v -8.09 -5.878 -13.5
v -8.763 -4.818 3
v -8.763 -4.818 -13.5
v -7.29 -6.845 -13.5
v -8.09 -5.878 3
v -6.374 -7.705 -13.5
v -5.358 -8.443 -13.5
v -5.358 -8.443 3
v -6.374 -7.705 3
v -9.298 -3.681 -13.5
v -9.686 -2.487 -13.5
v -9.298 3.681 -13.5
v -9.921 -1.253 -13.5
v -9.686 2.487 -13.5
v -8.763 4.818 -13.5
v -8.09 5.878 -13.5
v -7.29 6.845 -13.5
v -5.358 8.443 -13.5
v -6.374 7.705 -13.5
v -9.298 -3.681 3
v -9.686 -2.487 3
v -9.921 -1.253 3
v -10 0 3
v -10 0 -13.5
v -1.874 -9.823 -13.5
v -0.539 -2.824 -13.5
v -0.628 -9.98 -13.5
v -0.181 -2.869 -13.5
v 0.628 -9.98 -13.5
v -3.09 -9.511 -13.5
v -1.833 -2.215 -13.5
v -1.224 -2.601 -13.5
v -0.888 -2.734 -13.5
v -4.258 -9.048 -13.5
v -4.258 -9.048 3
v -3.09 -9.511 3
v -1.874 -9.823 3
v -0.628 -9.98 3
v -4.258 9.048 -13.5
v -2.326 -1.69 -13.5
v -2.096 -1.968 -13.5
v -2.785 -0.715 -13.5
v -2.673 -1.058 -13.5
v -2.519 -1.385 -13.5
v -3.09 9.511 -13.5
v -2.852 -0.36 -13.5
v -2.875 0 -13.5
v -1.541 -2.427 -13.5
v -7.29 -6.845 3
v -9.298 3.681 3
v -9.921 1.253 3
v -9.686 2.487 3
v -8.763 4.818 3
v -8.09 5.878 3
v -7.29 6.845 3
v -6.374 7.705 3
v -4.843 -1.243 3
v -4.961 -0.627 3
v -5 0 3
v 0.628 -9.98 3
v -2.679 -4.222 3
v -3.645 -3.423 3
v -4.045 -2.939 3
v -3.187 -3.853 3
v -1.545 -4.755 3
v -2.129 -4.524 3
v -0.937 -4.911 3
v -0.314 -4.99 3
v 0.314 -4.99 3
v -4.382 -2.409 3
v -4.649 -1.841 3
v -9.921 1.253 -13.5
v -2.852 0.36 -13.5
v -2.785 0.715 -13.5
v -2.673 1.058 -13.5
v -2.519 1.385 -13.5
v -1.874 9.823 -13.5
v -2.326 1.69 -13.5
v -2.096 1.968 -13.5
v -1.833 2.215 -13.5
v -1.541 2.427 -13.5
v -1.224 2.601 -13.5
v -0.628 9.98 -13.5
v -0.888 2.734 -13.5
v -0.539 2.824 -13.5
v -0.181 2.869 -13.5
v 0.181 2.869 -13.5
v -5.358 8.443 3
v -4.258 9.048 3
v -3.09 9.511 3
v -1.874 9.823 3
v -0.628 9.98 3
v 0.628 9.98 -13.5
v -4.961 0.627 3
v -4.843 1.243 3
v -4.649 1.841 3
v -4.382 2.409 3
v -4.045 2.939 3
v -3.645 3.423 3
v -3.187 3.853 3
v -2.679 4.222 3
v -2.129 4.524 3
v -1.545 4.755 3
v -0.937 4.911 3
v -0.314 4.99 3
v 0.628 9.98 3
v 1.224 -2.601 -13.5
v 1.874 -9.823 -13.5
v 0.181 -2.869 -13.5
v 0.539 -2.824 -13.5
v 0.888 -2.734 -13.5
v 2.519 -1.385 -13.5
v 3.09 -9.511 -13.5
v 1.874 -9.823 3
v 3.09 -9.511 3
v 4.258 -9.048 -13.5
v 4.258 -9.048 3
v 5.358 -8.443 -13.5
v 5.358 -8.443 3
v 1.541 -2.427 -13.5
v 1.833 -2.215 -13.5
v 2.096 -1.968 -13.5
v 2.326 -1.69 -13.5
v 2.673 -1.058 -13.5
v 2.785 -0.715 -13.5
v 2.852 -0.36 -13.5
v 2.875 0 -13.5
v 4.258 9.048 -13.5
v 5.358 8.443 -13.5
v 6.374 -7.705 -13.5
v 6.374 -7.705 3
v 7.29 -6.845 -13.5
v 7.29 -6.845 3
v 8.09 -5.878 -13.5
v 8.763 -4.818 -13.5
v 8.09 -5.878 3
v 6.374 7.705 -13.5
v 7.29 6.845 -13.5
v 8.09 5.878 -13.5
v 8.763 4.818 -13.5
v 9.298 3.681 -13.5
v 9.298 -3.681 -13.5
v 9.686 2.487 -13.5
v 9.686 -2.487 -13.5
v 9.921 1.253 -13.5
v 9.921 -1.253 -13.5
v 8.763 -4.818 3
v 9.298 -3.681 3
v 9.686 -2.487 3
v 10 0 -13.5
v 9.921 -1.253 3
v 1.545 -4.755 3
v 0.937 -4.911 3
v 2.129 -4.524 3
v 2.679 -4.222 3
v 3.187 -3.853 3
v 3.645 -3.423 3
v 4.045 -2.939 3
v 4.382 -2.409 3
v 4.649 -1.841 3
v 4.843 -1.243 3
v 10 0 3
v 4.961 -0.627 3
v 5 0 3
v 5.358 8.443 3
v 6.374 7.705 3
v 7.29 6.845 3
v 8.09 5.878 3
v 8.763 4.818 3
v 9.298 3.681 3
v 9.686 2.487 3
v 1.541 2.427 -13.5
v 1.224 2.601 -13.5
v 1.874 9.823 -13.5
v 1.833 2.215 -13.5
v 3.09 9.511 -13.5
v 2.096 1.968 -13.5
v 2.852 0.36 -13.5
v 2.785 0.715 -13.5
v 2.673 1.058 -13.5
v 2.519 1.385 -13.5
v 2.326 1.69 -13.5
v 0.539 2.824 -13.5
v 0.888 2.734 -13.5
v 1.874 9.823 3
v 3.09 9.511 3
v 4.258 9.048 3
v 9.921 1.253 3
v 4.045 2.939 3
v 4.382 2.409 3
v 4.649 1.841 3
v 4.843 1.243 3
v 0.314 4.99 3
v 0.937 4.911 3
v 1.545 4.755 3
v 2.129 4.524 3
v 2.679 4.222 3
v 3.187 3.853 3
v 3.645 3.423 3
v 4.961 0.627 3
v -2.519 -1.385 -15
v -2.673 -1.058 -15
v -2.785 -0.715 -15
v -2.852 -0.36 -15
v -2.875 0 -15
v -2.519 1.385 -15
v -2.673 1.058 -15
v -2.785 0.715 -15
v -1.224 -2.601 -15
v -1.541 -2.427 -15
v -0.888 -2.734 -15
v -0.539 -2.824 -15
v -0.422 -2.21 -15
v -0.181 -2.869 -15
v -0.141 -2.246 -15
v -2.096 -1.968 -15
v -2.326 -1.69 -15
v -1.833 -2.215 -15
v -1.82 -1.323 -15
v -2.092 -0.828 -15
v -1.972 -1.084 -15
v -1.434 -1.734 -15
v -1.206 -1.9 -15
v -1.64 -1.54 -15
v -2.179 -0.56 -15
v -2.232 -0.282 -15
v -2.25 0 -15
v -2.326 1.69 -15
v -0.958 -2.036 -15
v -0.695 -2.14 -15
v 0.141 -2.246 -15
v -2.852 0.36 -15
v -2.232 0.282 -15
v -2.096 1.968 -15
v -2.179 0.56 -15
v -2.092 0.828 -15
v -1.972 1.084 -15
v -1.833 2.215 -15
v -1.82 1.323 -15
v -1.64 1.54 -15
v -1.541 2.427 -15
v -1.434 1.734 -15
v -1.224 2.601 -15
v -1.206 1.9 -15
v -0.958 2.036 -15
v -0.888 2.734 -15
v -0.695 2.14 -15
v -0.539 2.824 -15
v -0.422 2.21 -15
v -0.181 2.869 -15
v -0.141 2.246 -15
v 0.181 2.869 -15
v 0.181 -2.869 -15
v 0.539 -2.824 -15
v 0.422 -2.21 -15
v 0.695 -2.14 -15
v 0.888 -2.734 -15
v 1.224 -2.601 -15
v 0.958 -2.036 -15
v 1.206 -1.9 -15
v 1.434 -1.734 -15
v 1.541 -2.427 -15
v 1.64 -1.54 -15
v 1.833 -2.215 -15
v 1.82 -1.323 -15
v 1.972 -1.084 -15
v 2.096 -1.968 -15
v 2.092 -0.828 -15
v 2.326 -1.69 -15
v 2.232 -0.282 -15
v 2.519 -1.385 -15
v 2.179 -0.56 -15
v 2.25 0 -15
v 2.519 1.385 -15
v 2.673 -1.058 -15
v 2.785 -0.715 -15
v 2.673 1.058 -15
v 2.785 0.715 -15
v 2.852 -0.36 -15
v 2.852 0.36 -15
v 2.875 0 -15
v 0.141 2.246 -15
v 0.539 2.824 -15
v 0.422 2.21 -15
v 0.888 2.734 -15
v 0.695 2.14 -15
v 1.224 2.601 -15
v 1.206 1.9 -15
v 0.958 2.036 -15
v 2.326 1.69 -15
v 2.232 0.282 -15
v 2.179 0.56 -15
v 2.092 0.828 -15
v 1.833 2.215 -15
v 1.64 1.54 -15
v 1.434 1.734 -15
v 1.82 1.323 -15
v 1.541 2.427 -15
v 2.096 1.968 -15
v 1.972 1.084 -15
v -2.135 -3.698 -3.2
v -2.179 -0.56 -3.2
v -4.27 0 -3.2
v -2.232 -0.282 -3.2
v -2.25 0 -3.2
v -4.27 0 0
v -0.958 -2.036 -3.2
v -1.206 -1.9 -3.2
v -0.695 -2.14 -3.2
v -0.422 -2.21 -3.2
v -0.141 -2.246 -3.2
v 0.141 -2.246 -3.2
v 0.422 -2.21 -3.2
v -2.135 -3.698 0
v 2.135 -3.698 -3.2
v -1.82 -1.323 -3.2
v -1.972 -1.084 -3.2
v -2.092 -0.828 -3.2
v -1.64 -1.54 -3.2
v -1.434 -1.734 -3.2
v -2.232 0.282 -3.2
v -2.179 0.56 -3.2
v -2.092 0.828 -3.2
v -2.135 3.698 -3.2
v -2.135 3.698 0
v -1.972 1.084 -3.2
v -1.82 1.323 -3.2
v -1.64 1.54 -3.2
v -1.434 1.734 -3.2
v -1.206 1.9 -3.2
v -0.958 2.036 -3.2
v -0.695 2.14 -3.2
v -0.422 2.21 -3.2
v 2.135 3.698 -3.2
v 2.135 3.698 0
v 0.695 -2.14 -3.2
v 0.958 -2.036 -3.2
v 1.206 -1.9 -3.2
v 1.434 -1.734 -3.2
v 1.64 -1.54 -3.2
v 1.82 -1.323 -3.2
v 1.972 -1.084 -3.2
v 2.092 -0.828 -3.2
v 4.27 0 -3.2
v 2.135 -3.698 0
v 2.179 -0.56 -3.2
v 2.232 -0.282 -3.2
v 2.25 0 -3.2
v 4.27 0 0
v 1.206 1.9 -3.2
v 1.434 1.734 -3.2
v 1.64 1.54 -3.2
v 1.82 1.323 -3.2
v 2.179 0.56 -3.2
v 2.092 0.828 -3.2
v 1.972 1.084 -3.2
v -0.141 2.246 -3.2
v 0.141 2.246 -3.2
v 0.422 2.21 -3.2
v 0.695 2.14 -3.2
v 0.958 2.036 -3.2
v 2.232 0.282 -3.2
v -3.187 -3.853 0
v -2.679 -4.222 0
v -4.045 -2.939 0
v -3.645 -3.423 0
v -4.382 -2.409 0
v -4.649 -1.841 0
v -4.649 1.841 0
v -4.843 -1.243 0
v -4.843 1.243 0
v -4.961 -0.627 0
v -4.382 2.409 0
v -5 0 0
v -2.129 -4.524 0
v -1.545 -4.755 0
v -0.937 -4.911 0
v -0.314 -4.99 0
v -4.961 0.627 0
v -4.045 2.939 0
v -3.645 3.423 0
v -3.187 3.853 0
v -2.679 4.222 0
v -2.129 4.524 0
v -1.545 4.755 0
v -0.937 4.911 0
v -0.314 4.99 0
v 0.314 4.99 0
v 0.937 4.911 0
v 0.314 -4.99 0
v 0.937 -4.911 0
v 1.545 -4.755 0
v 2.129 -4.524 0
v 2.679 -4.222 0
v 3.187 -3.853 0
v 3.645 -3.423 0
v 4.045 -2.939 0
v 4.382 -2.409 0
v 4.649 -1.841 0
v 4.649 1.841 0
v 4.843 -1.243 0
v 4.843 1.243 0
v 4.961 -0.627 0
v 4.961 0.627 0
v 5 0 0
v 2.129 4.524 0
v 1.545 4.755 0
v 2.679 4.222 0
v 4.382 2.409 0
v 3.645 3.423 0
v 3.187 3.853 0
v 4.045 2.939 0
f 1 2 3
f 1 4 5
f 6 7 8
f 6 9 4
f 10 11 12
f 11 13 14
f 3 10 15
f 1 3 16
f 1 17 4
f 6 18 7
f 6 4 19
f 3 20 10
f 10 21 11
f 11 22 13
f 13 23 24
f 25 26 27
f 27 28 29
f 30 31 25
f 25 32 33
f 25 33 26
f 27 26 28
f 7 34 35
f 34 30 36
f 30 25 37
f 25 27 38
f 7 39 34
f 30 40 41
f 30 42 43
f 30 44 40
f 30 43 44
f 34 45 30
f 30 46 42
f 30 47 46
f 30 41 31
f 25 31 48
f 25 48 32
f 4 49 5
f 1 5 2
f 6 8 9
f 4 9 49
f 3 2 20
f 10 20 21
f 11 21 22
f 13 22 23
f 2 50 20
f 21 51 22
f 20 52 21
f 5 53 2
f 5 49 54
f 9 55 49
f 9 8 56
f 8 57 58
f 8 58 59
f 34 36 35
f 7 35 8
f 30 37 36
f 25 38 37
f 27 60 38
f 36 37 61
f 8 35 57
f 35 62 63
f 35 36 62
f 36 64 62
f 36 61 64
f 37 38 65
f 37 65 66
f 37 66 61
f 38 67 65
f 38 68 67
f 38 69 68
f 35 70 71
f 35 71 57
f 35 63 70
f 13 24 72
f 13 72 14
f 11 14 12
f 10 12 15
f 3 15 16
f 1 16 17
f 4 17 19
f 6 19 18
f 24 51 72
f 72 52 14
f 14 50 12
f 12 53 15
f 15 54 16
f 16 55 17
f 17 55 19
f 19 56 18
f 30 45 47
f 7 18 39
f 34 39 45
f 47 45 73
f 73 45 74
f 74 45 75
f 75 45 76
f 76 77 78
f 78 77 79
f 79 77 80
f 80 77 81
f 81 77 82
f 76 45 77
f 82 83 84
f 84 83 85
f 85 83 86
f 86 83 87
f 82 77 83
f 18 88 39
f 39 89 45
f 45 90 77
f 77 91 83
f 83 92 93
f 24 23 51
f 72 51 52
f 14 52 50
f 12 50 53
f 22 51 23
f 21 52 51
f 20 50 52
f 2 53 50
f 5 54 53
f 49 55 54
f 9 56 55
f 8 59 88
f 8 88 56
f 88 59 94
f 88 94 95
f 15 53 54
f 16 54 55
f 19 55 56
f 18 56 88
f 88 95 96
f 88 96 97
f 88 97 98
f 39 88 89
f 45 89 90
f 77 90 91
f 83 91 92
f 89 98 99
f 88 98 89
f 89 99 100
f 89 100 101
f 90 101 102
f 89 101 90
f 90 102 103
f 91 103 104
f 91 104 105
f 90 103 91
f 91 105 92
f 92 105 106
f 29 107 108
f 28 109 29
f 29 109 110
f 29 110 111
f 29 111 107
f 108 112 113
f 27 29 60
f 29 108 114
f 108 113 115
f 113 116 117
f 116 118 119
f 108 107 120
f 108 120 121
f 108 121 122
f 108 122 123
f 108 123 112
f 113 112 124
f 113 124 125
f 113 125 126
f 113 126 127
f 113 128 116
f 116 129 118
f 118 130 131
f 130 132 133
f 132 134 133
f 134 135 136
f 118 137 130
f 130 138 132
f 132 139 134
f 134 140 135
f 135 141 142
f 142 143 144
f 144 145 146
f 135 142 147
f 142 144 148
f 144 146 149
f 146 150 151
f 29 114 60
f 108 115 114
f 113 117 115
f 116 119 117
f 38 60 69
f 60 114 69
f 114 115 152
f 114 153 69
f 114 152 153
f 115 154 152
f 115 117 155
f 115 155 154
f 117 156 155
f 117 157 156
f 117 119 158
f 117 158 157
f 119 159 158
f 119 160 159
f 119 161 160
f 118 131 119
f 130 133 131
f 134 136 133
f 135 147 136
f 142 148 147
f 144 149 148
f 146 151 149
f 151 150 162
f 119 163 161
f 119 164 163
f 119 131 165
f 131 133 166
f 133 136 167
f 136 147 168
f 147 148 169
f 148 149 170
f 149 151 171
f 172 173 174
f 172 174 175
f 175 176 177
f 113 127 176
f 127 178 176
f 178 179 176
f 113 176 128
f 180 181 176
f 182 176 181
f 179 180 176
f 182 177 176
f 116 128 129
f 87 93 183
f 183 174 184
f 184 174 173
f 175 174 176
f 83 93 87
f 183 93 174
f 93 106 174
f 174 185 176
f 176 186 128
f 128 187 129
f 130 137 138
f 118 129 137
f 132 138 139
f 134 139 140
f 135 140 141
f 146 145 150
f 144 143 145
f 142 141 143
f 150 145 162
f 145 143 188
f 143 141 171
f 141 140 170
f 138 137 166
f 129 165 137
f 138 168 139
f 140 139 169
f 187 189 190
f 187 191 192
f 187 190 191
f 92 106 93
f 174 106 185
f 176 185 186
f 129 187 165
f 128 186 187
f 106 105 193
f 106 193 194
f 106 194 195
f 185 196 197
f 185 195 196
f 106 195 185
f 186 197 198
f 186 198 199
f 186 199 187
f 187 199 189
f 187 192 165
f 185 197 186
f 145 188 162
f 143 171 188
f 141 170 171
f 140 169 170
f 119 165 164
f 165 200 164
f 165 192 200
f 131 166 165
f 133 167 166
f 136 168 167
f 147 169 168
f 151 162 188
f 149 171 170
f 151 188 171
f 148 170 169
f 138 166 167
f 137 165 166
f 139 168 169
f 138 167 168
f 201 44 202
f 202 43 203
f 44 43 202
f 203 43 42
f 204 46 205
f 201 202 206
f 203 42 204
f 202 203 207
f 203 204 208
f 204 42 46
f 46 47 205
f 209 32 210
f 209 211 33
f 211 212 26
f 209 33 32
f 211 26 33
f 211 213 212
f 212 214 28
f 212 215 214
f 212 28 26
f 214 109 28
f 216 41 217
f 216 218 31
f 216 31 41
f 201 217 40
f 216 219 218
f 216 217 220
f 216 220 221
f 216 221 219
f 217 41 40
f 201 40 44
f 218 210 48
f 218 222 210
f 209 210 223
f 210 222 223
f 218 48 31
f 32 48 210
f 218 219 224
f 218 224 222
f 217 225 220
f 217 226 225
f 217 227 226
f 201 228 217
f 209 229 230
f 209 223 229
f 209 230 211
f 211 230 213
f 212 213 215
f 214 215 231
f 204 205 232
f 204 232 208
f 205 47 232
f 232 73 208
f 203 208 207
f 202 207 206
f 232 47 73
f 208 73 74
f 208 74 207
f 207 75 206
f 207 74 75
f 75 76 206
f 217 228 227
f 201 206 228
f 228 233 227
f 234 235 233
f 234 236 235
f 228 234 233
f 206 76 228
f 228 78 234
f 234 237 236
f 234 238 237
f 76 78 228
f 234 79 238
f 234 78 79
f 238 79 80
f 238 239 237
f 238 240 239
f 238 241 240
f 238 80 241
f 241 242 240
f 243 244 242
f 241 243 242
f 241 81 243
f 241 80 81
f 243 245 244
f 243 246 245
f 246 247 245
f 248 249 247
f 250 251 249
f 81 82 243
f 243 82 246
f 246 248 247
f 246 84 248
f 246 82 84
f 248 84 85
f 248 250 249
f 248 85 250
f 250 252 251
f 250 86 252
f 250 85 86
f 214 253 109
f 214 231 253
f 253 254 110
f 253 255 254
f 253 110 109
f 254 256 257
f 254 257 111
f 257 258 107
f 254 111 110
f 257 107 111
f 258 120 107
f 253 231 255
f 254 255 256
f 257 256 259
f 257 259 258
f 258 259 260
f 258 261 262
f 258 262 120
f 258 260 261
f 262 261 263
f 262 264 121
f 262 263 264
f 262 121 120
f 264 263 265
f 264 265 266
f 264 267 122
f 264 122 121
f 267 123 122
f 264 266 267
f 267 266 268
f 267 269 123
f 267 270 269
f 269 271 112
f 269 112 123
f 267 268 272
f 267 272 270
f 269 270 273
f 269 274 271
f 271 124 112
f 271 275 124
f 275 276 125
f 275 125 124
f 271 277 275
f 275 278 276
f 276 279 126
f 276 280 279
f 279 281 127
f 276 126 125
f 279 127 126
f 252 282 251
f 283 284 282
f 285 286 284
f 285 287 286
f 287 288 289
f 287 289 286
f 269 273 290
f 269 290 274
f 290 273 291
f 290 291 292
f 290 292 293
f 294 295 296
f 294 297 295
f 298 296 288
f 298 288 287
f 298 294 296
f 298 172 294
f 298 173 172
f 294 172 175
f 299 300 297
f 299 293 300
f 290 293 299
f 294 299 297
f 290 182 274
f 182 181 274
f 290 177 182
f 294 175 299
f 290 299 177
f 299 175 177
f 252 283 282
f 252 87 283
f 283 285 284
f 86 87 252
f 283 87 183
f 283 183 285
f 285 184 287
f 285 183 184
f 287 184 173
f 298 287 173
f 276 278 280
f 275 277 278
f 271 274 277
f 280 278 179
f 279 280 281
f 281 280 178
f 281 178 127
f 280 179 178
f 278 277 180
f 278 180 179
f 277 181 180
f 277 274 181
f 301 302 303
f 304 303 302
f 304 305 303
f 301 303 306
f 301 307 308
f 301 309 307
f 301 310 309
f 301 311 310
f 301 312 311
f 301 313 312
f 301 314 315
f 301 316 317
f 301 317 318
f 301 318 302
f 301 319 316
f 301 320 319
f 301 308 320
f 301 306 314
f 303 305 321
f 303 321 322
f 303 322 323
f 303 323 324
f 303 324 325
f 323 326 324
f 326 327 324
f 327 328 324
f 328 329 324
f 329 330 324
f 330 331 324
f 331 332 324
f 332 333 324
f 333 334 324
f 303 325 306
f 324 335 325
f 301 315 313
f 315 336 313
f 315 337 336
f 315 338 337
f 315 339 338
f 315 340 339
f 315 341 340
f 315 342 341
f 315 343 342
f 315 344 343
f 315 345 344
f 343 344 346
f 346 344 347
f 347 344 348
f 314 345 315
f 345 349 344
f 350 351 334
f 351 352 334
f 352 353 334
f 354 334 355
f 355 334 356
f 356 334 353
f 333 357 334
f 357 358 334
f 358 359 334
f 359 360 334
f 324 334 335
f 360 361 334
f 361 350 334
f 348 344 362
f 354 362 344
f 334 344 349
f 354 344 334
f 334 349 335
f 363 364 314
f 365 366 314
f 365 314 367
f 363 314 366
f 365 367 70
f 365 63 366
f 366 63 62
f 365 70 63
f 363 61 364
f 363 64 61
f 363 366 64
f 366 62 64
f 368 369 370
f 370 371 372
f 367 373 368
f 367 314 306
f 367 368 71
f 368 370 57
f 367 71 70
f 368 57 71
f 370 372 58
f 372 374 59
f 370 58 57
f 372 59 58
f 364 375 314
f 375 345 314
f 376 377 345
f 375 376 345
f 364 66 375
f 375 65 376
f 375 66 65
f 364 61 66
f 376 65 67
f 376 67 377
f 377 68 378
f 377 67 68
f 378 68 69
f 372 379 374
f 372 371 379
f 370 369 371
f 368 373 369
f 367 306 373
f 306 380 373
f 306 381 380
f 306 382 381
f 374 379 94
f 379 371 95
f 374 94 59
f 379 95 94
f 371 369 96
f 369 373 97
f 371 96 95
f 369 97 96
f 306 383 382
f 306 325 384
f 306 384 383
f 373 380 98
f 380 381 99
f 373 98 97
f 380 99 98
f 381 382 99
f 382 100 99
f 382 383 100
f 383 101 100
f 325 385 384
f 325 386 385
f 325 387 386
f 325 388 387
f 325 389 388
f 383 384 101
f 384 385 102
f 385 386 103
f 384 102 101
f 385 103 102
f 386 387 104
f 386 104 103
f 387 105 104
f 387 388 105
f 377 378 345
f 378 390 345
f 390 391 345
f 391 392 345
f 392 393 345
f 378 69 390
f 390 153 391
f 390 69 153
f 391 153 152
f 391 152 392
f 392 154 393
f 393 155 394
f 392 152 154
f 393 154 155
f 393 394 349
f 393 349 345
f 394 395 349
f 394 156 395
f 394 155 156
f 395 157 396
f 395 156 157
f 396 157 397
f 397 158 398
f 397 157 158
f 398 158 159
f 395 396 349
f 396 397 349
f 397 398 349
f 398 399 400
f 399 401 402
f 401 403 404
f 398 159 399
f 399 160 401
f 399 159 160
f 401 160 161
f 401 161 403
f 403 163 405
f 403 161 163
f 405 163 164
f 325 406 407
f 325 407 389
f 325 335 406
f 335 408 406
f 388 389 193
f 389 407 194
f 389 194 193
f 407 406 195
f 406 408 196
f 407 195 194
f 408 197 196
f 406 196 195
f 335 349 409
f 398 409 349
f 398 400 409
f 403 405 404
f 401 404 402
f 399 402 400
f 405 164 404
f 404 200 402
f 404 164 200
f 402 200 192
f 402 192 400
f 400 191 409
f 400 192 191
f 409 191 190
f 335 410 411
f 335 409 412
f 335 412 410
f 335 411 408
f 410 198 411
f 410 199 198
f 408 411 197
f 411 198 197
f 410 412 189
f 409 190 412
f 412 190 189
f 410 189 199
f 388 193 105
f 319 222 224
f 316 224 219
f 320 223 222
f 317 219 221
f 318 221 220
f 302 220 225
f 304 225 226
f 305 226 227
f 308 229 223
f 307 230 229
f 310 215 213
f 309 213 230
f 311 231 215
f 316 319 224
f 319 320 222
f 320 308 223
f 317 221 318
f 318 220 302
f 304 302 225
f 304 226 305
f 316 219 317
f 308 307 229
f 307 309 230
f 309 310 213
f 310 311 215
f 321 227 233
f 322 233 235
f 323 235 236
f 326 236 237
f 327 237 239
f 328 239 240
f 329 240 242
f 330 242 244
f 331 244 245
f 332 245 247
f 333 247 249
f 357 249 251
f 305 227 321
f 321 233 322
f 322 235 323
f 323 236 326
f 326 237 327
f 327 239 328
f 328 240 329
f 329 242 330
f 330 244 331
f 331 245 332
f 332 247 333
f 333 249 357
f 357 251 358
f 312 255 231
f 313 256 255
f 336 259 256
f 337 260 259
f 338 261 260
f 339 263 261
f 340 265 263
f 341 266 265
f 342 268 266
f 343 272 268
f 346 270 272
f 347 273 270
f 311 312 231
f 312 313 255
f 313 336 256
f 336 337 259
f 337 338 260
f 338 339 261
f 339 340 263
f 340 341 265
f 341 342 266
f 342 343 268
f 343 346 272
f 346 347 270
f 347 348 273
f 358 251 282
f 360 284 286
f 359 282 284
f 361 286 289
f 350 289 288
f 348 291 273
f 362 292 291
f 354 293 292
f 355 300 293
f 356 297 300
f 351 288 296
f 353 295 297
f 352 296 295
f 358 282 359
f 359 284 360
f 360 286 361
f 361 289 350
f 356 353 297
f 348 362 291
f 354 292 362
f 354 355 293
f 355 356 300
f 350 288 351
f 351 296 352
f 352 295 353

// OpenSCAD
$fn = 50;

difference() {
	union() {
		translate(v = [0, 0, -13.5]) {
			cylinder(h = 16.5, r = 10.0);
		}
		#translate(v = [0, 0, -15.0]) {
			cylinder(h = 15, r = 2.875);
		}
	}
	union() {
		translate(v = [0, 0, 0]) {
			rotate(a = [0, 0, 0]) {
				difference() {
					union() {
						translate(v = [0, 0, -3.2]) {
							linear_extrude(height = 3.2) {
								polygon(points = [[4.2698, 0.0], [2.1349000000000005, 3.697755269078796], [-2.134899999999999, 3.6977552690787965], [-4.2698, 5.228996902999369e-16], [-2.134900000000002, -3.6977552690787956], [2.1348999999999974, -3.697755269078798]]);
							}
						}
					}
					union();
				}
			}
		}
		#cylinder(h = 3, r = 5.0);
		#translate(v = [0, 0, -100.0]) {
			cylinder(h = 200, r = 2.25);
		}
	}
}
